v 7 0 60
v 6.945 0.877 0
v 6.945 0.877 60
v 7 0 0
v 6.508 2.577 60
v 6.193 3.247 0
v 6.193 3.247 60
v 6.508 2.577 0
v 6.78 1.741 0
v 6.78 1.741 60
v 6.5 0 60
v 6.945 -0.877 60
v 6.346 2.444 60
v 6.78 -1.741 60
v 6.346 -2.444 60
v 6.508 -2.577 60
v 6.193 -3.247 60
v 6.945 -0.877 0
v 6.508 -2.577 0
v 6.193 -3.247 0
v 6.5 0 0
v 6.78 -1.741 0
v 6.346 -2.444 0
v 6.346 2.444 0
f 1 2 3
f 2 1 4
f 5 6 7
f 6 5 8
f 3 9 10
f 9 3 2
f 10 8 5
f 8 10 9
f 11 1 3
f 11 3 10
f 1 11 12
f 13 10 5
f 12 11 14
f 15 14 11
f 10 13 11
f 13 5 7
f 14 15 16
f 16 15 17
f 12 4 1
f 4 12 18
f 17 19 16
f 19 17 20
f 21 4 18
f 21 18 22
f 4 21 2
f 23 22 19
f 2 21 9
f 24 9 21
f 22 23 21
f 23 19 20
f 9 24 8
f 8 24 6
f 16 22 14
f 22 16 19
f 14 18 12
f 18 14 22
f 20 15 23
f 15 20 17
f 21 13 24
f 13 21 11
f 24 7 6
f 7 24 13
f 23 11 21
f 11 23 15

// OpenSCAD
$fn = 50;


difference() {
	union() {
		cylinder(h = 60, r = 7.0000000000);
		translate(v = [-16.0000000000, 0, 0]) {
			cylinder(h = 60, r = 7.0000000000);
		}
	}
	union() {
		cylinder(h = 60, r = 3.2500000000);
		cylinder(h = 60, r = 1.8000000000);
		cylinder(h = 60, r = 1.8000000000);
		cylinder(h = 60, r = 1.8000000000);
		translate(v = [-20.5000000000, 0, 0]) {
			hull() {
				translate(v = [-3.7500000000, 0.0000000000, 0]) {
					cylinder(h = 60, r = 10.5000000000);
				}
				translate(v = [3.7500000000, 0.0000000000, 0]) {
					cylinder(h = 60, r = 10.5000000000);
				}
				translate(v = [-3.7500000000, -0.0000000000, 0]) {
					cylinder(h = 60, r = 10.5000000000);
				}
				translate(v = [3.7500000000, -0.0000000000, 0]) {
					cylinder(h = 60, r = 10.5000000000);
				}
			}
		}
		translate(v = [-13.0000000000, 0, 0.0000000000]) {
			cylinder(h = 60, r = 19.5000000000);
		}
	}
}
